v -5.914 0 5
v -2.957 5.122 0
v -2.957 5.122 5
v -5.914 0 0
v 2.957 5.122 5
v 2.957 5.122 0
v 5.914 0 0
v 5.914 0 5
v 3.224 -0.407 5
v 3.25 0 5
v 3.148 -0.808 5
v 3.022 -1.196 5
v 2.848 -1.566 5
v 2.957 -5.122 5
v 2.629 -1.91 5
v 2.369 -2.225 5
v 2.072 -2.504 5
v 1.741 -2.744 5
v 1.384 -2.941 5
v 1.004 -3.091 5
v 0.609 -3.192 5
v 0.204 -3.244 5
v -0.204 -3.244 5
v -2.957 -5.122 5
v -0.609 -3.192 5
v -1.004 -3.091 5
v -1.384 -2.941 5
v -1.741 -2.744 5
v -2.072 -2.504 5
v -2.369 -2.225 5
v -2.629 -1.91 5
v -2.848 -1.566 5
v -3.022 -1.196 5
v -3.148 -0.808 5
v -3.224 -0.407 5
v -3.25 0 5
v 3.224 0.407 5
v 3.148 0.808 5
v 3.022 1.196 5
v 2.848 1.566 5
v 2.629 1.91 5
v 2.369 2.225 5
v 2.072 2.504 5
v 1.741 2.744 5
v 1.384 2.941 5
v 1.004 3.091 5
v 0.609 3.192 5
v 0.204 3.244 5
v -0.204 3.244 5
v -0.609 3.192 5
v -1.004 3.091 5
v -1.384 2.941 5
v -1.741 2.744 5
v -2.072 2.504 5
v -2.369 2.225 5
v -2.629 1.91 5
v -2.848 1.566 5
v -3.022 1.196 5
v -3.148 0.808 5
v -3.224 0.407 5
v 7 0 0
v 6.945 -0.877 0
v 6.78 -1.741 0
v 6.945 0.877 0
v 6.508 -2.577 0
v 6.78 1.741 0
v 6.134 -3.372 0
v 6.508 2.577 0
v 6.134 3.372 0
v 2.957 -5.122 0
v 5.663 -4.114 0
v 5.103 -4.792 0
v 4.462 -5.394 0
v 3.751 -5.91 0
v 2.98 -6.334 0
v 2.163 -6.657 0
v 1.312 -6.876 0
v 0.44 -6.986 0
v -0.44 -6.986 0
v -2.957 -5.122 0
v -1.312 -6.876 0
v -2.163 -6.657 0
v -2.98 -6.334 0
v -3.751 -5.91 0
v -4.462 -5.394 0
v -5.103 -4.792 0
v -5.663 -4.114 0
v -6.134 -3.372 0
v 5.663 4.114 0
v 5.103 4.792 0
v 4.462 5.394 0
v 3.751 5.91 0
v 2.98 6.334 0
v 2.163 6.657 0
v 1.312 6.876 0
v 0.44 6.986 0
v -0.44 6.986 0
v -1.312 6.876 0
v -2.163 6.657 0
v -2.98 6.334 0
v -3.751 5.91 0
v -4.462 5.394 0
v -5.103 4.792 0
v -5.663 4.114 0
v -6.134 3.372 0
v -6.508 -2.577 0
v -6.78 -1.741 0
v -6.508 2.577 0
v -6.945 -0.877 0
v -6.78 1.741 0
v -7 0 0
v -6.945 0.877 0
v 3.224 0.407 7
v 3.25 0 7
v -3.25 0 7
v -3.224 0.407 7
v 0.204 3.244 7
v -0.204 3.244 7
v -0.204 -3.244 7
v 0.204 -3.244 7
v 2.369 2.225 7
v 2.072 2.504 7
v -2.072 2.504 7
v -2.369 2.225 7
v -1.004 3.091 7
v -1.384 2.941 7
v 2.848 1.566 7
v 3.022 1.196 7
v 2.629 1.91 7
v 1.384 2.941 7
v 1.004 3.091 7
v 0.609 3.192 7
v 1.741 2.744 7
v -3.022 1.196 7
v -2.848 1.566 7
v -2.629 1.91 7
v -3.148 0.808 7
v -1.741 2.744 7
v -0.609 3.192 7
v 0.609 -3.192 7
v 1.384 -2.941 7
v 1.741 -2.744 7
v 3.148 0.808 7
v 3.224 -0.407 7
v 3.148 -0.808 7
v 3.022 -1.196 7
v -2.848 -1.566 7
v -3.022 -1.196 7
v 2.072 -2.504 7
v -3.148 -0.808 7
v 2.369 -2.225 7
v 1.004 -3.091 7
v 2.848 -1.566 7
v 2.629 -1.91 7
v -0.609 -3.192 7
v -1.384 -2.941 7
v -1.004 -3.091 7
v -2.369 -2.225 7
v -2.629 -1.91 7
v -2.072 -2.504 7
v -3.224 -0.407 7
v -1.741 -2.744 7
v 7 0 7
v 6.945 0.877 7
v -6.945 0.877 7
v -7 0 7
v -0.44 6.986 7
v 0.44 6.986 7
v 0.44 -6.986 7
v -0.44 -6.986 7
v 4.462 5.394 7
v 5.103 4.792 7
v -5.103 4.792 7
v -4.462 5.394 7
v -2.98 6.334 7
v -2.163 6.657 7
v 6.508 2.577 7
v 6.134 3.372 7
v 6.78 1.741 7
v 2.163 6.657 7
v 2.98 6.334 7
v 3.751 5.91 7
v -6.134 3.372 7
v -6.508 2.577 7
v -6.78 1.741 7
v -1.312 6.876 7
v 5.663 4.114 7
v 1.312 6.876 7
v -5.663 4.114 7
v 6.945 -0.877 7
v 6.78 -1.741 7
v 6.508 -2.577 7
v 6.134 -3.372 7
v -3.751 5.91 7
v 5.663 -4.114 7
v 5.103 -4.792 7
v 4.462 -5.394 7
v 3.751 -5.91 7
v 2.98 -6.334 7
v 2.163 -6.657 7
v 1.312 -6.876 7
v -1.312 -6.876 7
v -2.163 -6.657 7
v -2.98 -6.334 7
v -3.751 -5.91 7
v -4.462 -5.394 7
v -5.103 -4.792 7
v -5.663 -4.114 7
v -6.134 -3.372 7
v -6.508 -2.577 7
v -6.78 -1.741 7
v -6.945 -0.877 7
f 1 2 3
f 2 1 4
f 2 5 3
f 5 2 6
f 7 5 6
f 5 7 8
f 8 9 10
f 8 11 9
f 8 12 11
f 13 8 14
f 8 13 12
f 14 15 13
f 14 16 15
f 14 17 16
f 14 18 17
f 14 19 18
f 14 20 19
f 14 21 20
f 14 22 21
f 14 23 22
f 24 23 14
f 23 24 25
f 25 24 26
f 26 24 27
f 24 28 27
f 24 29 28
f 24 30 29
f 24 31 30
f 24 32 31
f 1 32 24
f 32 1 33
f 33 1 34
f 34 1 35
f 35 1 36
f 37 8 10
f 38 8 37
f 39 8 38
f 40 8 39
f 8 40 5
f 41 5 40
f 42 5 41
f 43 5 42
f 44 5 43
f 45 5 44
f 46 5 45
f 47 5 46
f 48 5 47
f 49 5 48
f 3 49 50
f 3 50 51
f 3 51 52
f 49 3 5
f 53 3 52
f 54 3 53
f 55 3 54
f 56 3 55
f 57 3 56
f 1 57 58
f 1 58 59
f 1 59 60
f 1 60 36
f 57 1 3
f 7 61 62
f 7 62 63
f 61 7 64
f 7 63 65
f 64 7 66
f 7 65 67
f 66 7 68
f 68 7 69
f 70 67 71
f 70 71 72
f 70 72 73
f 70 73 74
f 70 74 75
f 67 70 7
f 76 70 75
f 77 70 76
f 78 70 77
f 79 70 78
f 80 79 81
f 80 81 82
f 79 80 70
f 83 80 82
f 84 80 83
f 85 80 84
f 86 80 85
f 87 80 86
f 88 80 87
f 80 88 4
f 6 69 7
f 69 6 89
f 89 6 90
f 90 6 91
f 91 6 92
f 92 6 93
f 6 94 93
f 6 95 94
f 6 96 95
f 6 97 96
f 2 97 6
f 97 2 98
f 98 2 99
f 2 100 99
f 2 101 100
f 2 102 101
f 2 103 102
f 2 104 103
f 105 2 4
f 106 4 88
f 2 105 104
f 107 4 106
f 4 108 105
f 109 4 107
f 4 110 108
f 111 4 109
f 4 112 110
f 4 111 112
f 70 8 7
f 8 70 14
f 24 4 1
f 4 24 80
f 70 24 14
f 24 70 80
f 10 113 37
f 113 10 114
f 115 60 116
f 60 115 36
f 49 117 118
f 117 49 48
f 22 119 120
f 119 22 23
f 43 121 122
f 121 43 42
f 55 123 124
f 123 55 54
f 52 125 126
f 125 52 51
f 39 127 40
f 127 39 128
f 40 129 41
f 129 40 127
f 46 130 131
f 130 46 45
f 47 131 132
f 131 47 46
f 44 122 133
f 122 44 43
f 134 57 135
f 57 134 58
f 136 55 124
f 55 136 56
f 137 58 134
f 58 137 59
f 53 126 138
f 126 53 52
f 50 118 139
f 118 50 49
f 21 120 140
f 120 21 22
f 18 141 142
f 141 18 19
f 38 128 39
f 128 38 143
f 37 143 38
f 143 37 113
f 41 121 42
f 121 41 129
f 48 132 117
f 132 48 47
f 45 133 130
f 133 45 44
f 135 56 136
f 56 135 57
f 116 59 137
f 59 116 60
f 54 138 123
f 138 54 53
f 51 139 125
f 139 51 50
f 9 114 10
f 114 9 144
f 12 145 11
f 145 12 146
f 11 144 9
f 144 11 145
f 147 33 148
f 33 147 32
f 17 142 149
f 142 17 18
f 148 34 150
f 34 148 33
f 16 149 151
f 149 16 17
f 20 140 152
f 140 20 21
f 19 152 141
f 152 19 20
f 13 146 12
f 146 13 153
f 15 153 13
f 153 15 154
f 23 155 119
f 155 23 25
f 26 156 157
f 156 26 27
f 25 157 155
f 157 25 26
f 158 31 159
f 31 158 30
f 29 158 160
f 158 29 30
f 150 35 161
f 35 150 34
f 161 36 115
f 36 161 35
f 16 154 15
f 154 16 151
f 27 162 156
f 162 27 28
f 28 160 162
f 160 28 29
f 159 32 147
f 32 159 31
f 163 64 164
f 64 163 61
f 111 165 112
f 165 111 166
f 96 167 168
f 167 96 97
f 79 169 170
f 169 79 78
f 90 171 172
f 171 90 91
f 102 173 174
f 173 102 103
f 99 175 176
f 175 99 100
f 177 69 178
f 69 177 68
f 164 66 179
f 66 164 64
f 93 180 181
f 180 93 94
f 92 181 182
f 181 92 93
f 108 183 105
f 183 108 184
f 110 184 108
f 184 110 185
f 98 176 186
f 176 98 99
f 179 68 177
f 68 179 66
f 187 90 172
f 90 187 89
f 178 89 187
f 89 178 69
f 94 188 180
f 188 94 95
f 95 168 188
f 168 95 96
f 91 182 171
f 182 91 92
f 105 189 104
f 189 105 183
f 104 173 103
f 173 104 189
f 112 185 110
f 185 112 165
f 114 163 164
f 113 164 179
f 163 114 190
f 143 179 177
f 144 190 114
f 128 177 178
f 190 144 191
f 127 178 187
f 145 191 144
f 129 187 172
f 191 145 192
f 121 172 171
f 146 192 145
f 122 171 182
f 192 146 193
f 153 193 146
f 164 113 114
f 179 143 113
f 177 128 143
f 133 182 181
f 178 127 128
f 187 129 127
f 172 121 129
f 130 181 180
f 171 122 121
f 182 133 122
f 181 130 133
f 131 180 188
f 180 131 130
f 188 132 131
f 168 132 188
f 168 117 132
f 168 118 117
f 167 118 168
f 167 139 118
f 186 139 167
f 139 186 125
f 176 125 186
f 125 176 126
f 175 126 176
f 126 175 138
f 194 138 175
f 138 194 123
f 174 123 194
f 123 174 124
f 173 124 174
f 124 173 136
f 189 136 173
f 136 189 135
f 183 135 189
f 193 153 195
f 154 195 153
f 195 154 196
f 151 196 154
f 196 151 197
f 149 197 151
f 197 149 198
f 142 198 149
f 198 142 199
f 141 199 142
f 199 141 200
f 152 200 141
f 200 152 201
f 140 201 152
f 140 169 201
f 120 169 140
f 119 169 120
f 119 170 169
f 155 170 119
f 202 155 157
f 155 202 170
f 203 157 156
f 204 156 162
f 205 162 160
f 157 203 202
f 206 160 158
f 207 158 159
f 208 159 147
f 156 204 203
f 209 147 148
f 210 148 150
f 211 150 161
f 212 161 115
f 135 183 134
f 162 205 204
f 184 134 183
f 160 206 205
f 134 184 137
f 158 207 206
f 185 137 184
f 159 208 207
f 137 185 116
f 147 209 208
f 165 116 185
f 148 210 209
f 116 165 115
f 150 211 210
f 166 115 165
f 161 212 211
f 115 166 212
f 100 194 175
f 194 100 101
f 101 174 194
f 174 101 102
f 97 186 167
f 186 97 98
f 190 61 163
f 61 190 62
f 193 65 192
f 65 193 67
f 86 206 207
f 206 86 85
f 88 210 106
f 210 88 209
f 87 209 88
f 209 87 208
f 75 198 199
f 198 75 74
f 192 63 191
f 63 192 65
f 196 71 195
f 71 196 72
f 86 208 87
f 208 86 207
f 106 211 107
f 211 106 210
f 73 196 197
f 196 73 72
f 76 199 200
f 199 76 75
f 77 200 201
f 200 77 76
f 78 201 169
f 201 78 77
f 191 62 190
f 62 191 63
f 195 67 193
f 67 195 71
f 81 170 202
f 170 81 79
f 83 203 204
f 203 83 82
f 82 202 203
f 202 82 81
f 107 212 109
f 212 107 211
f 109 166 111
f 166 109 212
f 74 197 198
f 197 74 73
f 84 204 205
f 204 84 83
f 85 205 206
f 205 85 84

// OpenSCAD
$fn = 50;


difference() {
	union() {
		cylinder(h = 7, r = 7.0000000000);
	}
	union() {
		translate(v = [0, 0, 0]) {
			rotate(a = [0, 0, 0]) {
				difference() {
					union() {
						#linear_extrude(height = 5) {
							polygon(points = [[5.9142500000, 0.0000000000], [2.9571250000, 5.1218907443], [-2.9571250000, 5.1218907443], [-5.9142500000, 0.0000000000], [-2.9571250000, -5.1218907443], [2.9571250000, -5.1218907443]]);
						}
					}
					union();
				}
			}
		}
		translate(v = [0, 0, -100]) {
			cylinder(h = 200, r = 3.2500000000);
		}
		translate(v = [0, 0, -100]) {
			cylinder(h = 200, r = 1.8000000000);
		}
	}
}
